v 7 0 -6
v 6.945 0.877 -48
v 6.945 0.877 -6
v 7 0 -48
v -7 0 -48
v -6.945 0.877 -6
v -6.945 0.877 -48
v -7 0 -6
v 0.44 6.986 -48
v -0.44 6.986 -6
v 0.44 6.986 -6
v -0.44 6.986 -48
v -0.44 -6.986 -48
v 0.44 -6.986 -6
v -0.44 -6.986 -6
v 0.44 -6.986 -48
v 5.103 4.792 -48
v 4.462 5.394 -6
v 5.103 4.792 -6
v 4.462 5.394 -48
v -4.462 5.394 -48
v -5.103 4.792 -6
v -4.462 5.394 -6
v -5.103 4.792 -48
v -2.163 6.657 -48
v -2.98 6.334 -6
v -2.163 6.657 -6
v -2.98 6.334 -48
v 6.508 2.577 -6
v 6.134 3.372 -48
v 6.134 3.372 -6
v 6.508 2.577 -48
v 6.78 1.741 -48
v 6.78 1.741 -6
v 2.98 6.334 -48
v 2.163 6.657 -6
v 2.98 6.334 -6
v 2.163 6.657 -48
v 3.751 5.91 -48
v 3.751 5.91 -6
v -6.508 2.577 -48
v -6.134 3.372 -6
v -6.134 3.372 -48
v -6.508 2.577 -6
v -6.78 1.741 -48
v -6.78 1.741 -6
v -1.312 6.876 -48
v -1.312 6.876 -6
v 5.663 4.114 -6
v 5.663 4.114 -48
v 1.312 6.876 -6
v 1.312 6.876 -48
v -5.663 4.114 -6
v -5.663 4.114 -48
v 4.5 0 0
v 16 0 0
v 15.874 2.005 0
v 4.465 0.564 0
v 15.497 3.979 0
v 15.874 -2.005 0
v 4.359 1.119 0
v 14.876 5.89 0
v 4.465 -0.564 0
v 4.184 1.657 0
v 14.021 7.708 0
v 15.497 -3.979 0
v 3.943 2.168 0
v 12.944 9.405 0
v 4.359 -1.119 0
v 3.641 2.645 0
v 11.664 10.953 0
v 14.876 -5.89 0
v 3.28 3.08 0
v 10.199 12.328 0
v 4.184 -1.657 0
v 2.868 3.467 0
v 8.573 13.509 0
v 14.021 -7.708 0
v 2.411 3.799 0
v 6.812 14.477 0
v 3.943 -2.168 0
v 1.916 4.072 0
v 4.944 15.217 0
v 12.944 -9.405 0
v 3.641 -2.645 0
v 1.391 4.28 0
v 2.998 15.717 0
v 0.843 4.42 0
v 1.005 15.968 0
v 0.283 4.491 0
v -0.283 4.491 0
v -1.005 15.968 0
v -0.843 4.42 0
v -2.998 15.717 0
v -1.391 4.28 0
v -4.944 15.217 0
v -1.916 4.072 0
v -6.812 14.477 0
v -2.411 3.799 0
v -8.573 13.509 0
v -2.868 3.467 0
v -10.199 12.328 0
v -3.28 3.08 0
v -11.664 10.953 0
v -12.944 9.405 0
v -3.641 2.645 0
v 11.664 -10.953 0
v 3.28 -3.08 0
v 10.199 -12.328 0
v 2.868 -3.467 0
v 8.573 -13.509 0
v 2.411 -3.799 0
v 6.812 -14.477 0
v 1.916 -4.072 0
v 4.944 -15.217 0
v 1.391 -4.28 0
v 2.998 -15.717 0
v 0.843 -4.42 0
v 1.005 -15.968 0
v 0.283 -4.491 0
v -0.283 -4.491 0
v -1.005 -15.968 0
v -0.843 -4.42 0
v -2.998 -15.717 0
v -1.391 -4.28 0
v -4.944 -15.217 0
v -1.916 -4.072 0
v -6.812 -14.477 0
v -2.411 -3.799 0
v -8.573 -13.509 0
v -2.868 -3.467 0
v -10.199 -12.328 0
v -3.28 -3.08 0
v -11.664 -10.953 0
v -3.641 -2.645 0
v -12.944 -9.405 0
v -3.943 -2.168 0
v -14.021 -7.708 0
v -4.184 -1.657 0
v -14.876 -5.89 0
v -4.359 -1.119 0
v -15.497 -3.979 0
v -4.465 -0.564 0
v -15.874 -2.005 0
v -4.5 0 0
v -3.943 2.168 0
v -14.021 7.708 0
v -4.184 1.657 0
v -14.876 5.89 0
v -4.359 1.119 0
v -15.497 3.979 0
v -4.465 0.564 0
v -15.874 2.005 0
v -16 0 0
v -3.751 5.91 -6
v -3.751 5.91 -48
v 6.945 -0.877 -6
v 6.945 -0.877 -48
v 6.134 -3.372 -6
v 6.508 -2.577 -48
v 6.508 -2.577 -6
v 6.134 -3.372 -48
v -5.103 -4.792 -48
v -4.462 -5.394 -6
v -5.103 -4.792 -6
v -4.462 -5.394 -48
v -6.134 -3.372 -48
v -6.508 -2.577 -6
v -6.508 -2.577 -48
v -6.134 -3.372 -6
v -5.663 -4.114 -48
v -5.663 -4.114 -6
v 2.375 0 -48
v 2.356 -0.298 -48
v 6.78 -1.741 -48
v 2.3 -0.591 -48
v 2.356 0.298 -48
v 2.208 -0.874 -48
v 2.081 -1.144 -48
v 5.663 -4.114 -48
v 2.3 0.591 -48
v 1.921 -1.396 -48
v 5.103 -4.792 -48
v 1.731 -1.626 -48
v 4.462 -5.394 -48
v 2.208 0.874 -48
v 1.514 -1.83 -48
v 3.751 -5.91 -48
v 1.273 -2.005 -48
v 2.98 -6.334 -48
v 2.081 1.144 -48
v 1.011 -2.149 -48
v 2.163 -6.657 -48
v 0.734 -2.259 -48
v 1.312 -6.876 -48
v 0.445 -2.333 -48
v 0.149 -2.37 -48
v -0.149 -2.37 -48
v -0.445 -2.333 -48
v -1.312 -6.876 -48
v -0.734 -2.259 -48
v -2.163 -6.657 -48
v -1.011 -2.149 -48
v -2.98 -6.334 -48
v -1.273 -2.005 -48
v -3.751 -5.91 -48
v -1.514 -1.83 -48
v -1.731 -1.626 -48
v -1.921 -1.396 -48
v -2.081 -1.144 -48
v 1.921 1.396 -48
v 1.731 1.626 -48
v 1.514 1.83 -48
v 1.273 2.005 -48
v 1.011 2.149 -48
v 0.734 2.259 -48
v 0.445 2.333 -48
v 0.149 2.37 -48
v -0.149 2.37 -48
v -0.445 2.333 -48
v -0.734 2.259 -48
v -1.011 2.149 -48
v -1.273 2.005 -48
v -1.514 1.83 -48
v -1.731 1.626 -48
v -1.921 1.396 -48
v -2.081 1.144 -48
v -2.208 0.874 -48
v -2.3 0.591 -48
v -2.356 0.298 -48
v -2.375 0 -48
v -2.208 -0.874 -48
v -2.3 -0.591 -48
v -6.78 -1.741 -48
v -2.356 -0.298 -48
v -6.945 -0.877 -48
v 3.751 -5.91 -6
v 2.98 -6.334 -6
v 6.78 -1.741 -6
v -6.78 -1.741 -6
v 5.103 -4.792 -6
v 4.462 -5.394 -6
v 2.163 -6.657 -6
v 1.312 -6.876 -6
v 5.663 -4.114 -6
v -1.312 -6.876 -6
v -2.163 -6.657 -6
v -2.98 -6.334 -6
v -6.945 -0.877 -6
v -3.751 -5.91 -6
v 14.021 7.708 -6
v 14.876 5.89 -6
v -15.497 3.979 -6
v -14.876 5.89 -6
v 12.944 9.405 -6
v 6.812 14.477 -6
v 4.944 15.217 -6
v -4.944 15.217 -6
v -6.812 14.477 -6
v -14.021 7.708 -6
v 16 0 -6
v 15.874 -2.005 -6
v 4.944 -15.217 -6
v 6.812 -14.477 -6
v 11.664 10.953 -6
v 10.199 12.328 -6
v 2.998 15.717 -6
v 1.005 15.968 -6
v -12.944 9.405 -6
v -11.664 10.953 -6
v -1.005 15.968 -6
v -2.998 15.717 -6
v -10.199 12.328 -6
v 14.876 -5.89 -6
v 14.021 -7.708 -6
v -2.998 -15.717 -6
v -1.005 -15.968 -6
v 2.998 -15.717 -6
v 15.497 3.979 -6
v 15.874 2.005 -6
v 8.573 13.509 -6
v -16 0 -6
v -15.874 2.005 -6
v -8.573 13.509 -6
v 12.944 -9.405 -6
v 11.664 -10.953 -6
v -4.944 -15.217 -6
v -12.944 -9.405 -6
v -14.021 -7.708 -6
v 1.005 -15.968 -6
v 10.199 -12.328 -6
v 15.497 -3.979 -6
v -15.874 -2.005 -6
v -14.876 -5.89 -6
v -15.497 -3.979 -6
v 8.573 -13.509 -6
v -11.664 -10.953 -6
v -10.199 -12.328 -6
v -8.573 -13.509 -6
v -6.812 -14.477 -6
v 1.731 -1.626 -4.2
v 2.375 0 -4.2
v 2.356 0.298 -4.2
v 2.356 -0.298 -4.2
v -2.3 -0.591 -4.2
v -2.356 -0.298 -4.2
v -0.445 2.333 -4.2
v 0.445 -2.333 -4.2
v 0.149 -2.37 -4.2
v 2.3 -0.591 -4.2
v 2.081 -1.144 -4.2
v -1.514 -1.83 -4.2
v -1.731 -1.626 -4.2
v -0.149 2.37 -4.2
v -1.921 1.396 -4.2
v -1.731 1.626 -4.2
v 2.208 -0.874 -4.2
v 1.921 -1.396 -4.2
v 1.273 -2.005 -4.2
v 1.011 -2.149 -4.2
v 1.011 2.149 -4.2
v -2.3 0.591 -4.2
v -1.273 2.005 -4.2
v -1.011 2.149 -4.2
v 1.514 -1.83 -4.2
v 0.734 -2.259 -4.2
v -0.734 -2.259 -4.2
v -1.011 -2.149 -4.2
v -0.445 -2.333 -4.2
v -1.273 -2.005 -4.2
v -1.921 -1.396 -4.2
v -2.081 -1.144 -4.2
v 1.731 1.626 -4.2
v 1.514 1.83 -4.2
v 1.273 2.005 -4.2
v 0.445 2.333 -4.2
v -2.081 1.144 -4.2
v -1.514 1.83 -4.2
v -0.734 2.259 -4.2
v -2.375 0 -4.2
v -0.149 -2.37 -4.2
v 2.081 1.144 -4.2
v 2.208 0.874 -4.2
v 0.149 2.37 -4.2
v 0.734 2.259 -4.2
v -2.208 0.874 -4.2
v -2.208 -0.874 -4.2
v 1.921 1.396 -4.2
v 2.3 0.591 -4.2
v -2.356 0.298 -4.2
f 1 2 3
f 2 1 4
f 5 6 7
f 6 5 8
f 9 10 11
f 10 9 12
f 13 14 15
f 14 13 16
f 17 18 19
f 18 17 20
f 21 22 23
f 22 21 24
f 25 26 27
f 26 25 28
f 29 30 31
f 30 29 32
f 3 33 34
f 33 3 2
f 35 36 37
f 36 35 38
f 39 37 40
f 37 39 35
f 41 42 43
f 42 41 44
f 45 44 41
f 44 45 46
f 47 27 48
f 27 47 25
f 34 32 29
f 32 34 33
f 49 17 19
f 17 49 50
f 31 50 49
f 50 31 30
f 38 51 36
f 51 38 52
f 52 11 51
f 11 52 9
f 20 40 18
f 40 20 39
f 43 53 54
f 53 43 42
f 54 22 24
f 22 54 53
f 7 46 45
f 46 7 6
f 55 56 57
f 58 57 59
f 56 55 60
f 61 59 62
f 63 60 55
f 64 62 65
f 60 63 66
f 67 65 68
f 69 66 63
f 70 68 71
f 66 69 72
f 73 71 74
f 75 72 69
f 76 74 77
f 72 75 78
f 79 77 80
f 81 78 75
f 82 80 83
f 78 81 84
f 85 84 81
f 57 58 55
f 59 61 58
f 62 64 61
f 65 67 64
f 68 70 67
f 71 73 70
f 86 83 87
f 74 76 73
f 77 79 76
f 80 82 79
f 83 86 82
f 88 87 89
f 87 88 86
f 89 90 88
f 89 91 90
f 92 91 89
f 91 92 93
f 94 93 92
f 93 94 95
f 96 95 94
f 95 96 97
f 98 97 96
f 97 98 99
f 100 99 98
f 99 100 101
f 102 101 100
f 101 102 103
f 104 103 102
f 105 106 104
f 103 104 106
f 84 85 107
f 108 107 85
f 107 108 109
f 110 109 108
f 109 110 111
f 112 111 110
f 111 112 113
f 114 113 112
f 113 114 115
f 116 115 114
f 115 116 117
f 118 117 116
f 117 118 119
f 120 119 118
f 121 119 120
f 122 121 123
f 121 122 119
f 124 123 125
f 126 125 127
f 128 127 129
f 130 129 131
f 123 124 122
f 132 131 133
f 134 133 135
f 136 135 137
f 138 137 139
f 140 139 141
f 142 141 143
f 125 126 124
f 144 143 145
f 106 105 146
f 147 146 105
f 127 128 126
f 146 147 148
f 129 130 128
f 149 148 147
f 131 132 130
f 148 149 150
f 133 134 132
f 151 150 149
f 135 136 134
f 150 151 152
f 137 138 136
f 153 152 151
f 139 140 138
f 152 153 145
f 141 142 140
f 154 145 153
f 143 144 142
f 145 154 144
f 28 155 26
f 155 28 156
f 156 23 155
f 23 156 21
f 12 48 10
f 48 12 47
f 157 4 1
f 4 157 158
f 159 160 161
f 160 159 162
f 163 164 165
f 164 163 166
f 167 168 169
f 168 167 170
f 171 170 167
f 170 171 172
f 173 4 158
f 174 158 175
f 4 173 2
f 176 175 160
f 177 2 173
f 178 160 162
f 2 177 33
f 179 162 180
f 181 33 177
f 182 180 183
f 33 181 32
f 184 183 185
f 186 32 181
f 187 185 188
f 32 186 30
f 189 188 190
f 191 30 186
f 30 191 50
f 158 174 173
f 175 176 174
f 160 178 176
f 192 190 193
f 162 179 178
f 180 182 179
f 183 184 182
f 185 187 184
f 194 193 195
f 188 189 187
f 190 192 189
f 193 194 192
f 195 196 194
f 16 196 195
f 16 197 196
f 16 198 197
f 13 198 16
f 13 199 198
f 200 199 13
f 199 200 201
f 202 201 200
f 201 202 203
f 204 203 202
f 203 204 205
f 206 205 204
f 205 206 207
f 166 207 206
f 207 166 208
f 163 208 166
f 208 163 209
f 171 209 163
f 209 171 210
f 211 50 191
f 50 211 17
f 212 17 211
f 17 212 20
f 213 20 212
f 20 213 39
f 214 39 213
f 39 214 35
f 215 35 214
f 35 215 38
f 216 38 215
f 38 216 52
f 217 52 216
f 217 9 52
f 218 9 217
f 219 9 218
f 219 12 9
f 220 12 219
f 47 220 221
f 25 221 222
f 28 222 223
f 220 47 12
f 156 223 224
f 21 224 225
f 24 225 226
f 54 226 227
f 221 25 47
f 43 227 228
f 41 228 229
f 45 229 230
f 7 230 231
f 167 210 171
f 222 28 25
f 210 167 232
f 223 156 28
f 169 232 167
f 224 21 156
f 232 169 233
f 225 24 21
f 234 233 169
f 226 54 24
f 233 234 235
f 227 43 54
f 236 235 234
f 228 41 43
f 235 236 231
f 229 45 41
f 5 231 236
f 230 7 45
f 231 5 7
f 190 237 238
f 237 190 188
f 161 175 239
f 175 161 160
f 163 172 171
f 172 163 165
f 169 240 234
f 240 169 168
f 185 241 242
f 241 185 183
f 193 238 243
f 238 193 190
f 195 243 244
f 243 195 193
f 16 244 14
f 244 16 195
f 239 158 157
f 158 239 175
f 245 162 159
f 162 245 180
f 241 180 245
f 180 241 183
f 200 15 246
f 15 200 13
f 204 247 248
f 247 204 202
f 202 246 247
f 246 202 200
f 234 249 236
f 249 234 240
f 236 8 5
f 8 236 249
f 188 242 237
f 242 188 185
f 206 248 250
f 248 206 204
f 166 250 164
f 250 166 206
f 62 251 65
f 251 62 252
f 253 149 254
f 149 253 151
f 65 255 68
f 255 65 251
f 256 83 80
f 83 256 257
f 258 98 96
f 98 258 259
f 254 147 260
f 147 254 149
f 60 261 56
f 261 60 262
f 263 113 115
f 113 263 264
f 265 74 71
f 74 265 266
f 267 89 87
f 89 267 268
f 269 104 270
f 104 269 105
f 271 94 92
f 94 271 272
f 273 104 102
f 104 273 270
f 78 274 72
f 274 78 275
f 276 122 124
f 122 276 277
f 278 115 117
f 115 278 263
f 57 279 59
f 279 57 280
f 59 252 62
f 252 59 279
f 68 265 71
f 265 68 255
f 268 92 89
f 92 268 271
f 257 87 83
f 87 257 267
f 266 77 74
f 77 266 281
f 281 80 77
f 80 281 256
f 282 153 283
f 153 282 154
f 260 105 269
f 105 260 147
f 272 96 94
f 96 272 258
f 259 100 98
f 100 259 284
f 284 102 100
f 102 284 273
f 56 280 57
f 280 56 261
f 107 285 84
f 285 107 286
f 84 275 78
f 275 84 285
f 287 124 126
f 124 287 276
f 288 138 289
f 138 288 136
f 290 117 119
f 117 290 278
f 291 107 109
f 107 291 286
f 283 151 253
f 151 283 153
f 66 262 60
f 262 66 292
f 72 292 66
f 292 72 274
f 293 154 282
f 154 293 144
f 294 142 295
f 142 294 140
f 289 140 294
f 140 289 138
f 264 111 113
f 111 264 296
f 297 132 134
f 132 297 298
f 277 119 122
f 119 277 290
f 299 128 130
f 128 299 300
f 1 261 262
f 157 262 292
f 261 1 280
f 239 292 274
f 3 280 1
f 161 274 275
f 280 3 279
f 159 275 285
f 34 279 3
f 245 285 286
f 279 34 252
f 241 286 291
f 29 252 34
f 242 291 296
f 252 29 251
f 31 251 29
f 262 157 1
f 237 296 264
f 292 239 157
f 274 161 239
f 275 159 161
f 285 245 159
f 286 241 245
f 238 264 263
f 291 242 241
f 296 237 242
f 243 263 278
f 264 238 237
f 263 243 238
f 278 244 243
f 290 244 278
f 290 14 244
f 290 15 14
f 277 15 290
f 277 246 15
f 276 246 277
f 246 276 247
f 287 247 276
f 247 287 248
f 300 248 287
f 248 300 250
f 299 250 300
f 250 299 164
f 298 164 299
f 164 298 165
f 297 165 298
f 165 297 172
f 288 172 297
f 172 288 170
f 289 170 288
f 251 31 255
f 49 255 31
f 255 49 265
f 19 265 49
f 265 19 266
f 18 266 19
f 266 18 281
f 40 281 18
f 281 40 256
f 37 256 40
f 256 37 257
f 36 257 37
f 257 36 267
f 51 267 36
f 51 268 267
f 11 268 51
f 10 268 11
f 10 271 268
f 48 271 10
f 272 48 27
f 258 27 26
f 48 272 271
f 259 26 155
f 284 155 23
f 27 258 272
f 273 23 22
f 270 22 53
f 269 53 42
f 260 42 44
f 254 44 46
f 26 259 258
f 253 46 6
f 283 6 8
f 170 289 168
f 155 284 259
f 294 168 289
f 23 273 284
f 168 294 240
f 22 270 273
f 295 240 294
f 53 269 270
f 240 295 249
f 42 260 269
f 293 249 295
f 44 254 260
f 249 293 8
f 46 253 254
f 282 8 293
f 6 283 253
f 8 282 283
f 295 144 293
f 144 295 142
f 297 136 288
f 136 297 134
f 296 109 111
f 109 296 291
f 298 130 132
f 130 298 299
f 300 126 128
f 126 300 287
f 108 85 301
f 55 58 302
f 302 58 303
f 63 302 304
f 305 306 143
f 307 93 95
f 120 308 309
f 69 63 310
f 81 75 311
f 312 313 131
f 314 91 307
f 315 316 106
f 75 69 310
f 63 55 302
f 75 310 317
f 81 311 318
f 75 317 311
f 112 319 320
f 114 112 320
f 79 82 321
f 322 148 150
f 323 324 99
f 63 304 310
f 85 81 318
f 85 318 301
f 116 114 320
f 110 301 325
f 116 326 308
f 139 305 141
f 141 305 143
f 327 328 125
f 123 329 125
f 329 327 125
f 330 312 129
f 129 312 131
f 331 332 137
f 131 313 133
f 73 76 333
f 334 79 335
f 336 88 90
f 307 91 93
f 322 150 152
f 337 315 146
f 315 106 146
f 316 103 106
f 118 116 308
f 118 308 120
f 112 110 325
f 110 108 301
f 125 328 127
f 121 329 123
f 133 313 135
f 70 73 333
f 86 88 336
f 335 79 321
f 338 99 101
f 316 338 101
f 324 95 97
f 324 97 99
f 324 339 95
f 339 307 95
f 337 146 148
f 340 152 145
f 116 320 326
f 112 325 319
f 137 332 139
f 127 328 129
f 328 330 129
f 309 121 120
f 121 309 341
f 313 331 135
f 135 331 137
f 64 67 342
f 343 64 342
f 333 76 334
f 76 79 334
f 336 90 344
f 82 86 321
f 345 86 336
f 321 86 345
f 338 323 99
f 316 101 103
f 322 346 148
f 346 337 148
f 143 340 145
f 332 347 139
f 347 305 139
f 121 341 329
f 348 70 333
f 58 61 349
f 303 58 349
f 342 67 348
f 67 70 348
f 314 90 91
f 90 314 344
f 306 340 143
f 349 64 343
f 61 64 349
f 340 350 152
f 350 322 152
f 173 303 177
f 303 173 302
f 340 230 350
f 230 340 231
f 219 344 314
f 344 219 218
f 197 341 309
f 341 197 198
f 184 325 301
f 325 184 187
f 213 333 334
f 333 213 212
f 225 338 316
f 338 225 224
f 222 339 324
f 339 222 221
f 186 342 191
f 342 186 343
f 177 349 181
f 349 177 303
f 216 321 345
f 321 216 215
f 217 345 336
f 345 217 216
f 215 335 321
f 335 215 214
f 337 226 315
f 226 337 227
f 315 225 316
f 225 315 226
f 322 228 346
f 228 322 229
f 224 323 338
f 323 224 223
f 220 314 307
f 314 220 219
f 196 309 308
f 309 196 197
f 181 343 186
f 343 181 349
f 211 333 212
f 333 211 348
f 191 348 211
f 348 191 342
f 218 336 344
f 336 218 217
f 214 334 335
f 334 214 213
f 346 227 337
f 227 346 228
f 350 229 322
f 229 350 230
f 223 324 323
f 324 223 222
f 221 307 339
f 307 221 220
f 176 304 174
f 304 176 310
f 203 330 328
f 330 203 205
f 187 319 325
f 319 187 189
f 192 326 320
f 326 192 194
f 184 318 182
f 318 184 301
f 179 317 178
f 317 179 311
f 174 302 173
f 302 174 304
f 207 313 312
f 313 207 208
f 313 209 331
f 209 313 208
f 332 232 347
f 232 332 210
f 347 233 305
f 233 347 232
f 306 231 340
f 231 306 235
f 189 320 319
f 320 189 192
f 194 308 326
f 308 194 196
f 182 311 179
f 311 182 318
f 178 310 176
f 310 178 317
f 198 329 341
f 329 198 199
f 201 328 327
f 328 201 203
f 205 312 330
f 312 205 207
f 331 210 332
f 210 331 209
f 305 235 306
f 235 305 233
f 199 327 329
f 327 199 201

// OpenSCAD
$fn = 50;


difference() {
	union() {
		translate(v = [0, 0, -48.0000000000]) {
			cylinder(h = 48, r = 7.0000000000);
		}
		translate(v = [0, 0, -6.0000000000]) {
			cylinder(h = 6, r = 16.0000000000);
		}
	}
	union() {
		translate(v = [0, 0, 0]) {
			rotate(a = [0, 0, 0]) {
				difference() {
					union() {
						#translate(v = [0, 0, -48.0000000000]) {
							cylinder(h = 48, r = 2.2500000000);
						}
						#translate(v = [0, 0, -4.2000000000]) {
							cylinder(h = 4.2000000000, r = 7.0000000000, r1 = 2.3750000000, r2 = 4.5000000000);
						}
						#translate(v = [0, 0, -48.0000000000]) {
							cylinder(h = 48, r = 2.3750000000);
						}
						#translate(v = [0, 0, -48.0000000000]) {
							cylinder(h = 48, r = 2.2500000000);
						}
					}
					union();
				}
			}
		}
	}
}
